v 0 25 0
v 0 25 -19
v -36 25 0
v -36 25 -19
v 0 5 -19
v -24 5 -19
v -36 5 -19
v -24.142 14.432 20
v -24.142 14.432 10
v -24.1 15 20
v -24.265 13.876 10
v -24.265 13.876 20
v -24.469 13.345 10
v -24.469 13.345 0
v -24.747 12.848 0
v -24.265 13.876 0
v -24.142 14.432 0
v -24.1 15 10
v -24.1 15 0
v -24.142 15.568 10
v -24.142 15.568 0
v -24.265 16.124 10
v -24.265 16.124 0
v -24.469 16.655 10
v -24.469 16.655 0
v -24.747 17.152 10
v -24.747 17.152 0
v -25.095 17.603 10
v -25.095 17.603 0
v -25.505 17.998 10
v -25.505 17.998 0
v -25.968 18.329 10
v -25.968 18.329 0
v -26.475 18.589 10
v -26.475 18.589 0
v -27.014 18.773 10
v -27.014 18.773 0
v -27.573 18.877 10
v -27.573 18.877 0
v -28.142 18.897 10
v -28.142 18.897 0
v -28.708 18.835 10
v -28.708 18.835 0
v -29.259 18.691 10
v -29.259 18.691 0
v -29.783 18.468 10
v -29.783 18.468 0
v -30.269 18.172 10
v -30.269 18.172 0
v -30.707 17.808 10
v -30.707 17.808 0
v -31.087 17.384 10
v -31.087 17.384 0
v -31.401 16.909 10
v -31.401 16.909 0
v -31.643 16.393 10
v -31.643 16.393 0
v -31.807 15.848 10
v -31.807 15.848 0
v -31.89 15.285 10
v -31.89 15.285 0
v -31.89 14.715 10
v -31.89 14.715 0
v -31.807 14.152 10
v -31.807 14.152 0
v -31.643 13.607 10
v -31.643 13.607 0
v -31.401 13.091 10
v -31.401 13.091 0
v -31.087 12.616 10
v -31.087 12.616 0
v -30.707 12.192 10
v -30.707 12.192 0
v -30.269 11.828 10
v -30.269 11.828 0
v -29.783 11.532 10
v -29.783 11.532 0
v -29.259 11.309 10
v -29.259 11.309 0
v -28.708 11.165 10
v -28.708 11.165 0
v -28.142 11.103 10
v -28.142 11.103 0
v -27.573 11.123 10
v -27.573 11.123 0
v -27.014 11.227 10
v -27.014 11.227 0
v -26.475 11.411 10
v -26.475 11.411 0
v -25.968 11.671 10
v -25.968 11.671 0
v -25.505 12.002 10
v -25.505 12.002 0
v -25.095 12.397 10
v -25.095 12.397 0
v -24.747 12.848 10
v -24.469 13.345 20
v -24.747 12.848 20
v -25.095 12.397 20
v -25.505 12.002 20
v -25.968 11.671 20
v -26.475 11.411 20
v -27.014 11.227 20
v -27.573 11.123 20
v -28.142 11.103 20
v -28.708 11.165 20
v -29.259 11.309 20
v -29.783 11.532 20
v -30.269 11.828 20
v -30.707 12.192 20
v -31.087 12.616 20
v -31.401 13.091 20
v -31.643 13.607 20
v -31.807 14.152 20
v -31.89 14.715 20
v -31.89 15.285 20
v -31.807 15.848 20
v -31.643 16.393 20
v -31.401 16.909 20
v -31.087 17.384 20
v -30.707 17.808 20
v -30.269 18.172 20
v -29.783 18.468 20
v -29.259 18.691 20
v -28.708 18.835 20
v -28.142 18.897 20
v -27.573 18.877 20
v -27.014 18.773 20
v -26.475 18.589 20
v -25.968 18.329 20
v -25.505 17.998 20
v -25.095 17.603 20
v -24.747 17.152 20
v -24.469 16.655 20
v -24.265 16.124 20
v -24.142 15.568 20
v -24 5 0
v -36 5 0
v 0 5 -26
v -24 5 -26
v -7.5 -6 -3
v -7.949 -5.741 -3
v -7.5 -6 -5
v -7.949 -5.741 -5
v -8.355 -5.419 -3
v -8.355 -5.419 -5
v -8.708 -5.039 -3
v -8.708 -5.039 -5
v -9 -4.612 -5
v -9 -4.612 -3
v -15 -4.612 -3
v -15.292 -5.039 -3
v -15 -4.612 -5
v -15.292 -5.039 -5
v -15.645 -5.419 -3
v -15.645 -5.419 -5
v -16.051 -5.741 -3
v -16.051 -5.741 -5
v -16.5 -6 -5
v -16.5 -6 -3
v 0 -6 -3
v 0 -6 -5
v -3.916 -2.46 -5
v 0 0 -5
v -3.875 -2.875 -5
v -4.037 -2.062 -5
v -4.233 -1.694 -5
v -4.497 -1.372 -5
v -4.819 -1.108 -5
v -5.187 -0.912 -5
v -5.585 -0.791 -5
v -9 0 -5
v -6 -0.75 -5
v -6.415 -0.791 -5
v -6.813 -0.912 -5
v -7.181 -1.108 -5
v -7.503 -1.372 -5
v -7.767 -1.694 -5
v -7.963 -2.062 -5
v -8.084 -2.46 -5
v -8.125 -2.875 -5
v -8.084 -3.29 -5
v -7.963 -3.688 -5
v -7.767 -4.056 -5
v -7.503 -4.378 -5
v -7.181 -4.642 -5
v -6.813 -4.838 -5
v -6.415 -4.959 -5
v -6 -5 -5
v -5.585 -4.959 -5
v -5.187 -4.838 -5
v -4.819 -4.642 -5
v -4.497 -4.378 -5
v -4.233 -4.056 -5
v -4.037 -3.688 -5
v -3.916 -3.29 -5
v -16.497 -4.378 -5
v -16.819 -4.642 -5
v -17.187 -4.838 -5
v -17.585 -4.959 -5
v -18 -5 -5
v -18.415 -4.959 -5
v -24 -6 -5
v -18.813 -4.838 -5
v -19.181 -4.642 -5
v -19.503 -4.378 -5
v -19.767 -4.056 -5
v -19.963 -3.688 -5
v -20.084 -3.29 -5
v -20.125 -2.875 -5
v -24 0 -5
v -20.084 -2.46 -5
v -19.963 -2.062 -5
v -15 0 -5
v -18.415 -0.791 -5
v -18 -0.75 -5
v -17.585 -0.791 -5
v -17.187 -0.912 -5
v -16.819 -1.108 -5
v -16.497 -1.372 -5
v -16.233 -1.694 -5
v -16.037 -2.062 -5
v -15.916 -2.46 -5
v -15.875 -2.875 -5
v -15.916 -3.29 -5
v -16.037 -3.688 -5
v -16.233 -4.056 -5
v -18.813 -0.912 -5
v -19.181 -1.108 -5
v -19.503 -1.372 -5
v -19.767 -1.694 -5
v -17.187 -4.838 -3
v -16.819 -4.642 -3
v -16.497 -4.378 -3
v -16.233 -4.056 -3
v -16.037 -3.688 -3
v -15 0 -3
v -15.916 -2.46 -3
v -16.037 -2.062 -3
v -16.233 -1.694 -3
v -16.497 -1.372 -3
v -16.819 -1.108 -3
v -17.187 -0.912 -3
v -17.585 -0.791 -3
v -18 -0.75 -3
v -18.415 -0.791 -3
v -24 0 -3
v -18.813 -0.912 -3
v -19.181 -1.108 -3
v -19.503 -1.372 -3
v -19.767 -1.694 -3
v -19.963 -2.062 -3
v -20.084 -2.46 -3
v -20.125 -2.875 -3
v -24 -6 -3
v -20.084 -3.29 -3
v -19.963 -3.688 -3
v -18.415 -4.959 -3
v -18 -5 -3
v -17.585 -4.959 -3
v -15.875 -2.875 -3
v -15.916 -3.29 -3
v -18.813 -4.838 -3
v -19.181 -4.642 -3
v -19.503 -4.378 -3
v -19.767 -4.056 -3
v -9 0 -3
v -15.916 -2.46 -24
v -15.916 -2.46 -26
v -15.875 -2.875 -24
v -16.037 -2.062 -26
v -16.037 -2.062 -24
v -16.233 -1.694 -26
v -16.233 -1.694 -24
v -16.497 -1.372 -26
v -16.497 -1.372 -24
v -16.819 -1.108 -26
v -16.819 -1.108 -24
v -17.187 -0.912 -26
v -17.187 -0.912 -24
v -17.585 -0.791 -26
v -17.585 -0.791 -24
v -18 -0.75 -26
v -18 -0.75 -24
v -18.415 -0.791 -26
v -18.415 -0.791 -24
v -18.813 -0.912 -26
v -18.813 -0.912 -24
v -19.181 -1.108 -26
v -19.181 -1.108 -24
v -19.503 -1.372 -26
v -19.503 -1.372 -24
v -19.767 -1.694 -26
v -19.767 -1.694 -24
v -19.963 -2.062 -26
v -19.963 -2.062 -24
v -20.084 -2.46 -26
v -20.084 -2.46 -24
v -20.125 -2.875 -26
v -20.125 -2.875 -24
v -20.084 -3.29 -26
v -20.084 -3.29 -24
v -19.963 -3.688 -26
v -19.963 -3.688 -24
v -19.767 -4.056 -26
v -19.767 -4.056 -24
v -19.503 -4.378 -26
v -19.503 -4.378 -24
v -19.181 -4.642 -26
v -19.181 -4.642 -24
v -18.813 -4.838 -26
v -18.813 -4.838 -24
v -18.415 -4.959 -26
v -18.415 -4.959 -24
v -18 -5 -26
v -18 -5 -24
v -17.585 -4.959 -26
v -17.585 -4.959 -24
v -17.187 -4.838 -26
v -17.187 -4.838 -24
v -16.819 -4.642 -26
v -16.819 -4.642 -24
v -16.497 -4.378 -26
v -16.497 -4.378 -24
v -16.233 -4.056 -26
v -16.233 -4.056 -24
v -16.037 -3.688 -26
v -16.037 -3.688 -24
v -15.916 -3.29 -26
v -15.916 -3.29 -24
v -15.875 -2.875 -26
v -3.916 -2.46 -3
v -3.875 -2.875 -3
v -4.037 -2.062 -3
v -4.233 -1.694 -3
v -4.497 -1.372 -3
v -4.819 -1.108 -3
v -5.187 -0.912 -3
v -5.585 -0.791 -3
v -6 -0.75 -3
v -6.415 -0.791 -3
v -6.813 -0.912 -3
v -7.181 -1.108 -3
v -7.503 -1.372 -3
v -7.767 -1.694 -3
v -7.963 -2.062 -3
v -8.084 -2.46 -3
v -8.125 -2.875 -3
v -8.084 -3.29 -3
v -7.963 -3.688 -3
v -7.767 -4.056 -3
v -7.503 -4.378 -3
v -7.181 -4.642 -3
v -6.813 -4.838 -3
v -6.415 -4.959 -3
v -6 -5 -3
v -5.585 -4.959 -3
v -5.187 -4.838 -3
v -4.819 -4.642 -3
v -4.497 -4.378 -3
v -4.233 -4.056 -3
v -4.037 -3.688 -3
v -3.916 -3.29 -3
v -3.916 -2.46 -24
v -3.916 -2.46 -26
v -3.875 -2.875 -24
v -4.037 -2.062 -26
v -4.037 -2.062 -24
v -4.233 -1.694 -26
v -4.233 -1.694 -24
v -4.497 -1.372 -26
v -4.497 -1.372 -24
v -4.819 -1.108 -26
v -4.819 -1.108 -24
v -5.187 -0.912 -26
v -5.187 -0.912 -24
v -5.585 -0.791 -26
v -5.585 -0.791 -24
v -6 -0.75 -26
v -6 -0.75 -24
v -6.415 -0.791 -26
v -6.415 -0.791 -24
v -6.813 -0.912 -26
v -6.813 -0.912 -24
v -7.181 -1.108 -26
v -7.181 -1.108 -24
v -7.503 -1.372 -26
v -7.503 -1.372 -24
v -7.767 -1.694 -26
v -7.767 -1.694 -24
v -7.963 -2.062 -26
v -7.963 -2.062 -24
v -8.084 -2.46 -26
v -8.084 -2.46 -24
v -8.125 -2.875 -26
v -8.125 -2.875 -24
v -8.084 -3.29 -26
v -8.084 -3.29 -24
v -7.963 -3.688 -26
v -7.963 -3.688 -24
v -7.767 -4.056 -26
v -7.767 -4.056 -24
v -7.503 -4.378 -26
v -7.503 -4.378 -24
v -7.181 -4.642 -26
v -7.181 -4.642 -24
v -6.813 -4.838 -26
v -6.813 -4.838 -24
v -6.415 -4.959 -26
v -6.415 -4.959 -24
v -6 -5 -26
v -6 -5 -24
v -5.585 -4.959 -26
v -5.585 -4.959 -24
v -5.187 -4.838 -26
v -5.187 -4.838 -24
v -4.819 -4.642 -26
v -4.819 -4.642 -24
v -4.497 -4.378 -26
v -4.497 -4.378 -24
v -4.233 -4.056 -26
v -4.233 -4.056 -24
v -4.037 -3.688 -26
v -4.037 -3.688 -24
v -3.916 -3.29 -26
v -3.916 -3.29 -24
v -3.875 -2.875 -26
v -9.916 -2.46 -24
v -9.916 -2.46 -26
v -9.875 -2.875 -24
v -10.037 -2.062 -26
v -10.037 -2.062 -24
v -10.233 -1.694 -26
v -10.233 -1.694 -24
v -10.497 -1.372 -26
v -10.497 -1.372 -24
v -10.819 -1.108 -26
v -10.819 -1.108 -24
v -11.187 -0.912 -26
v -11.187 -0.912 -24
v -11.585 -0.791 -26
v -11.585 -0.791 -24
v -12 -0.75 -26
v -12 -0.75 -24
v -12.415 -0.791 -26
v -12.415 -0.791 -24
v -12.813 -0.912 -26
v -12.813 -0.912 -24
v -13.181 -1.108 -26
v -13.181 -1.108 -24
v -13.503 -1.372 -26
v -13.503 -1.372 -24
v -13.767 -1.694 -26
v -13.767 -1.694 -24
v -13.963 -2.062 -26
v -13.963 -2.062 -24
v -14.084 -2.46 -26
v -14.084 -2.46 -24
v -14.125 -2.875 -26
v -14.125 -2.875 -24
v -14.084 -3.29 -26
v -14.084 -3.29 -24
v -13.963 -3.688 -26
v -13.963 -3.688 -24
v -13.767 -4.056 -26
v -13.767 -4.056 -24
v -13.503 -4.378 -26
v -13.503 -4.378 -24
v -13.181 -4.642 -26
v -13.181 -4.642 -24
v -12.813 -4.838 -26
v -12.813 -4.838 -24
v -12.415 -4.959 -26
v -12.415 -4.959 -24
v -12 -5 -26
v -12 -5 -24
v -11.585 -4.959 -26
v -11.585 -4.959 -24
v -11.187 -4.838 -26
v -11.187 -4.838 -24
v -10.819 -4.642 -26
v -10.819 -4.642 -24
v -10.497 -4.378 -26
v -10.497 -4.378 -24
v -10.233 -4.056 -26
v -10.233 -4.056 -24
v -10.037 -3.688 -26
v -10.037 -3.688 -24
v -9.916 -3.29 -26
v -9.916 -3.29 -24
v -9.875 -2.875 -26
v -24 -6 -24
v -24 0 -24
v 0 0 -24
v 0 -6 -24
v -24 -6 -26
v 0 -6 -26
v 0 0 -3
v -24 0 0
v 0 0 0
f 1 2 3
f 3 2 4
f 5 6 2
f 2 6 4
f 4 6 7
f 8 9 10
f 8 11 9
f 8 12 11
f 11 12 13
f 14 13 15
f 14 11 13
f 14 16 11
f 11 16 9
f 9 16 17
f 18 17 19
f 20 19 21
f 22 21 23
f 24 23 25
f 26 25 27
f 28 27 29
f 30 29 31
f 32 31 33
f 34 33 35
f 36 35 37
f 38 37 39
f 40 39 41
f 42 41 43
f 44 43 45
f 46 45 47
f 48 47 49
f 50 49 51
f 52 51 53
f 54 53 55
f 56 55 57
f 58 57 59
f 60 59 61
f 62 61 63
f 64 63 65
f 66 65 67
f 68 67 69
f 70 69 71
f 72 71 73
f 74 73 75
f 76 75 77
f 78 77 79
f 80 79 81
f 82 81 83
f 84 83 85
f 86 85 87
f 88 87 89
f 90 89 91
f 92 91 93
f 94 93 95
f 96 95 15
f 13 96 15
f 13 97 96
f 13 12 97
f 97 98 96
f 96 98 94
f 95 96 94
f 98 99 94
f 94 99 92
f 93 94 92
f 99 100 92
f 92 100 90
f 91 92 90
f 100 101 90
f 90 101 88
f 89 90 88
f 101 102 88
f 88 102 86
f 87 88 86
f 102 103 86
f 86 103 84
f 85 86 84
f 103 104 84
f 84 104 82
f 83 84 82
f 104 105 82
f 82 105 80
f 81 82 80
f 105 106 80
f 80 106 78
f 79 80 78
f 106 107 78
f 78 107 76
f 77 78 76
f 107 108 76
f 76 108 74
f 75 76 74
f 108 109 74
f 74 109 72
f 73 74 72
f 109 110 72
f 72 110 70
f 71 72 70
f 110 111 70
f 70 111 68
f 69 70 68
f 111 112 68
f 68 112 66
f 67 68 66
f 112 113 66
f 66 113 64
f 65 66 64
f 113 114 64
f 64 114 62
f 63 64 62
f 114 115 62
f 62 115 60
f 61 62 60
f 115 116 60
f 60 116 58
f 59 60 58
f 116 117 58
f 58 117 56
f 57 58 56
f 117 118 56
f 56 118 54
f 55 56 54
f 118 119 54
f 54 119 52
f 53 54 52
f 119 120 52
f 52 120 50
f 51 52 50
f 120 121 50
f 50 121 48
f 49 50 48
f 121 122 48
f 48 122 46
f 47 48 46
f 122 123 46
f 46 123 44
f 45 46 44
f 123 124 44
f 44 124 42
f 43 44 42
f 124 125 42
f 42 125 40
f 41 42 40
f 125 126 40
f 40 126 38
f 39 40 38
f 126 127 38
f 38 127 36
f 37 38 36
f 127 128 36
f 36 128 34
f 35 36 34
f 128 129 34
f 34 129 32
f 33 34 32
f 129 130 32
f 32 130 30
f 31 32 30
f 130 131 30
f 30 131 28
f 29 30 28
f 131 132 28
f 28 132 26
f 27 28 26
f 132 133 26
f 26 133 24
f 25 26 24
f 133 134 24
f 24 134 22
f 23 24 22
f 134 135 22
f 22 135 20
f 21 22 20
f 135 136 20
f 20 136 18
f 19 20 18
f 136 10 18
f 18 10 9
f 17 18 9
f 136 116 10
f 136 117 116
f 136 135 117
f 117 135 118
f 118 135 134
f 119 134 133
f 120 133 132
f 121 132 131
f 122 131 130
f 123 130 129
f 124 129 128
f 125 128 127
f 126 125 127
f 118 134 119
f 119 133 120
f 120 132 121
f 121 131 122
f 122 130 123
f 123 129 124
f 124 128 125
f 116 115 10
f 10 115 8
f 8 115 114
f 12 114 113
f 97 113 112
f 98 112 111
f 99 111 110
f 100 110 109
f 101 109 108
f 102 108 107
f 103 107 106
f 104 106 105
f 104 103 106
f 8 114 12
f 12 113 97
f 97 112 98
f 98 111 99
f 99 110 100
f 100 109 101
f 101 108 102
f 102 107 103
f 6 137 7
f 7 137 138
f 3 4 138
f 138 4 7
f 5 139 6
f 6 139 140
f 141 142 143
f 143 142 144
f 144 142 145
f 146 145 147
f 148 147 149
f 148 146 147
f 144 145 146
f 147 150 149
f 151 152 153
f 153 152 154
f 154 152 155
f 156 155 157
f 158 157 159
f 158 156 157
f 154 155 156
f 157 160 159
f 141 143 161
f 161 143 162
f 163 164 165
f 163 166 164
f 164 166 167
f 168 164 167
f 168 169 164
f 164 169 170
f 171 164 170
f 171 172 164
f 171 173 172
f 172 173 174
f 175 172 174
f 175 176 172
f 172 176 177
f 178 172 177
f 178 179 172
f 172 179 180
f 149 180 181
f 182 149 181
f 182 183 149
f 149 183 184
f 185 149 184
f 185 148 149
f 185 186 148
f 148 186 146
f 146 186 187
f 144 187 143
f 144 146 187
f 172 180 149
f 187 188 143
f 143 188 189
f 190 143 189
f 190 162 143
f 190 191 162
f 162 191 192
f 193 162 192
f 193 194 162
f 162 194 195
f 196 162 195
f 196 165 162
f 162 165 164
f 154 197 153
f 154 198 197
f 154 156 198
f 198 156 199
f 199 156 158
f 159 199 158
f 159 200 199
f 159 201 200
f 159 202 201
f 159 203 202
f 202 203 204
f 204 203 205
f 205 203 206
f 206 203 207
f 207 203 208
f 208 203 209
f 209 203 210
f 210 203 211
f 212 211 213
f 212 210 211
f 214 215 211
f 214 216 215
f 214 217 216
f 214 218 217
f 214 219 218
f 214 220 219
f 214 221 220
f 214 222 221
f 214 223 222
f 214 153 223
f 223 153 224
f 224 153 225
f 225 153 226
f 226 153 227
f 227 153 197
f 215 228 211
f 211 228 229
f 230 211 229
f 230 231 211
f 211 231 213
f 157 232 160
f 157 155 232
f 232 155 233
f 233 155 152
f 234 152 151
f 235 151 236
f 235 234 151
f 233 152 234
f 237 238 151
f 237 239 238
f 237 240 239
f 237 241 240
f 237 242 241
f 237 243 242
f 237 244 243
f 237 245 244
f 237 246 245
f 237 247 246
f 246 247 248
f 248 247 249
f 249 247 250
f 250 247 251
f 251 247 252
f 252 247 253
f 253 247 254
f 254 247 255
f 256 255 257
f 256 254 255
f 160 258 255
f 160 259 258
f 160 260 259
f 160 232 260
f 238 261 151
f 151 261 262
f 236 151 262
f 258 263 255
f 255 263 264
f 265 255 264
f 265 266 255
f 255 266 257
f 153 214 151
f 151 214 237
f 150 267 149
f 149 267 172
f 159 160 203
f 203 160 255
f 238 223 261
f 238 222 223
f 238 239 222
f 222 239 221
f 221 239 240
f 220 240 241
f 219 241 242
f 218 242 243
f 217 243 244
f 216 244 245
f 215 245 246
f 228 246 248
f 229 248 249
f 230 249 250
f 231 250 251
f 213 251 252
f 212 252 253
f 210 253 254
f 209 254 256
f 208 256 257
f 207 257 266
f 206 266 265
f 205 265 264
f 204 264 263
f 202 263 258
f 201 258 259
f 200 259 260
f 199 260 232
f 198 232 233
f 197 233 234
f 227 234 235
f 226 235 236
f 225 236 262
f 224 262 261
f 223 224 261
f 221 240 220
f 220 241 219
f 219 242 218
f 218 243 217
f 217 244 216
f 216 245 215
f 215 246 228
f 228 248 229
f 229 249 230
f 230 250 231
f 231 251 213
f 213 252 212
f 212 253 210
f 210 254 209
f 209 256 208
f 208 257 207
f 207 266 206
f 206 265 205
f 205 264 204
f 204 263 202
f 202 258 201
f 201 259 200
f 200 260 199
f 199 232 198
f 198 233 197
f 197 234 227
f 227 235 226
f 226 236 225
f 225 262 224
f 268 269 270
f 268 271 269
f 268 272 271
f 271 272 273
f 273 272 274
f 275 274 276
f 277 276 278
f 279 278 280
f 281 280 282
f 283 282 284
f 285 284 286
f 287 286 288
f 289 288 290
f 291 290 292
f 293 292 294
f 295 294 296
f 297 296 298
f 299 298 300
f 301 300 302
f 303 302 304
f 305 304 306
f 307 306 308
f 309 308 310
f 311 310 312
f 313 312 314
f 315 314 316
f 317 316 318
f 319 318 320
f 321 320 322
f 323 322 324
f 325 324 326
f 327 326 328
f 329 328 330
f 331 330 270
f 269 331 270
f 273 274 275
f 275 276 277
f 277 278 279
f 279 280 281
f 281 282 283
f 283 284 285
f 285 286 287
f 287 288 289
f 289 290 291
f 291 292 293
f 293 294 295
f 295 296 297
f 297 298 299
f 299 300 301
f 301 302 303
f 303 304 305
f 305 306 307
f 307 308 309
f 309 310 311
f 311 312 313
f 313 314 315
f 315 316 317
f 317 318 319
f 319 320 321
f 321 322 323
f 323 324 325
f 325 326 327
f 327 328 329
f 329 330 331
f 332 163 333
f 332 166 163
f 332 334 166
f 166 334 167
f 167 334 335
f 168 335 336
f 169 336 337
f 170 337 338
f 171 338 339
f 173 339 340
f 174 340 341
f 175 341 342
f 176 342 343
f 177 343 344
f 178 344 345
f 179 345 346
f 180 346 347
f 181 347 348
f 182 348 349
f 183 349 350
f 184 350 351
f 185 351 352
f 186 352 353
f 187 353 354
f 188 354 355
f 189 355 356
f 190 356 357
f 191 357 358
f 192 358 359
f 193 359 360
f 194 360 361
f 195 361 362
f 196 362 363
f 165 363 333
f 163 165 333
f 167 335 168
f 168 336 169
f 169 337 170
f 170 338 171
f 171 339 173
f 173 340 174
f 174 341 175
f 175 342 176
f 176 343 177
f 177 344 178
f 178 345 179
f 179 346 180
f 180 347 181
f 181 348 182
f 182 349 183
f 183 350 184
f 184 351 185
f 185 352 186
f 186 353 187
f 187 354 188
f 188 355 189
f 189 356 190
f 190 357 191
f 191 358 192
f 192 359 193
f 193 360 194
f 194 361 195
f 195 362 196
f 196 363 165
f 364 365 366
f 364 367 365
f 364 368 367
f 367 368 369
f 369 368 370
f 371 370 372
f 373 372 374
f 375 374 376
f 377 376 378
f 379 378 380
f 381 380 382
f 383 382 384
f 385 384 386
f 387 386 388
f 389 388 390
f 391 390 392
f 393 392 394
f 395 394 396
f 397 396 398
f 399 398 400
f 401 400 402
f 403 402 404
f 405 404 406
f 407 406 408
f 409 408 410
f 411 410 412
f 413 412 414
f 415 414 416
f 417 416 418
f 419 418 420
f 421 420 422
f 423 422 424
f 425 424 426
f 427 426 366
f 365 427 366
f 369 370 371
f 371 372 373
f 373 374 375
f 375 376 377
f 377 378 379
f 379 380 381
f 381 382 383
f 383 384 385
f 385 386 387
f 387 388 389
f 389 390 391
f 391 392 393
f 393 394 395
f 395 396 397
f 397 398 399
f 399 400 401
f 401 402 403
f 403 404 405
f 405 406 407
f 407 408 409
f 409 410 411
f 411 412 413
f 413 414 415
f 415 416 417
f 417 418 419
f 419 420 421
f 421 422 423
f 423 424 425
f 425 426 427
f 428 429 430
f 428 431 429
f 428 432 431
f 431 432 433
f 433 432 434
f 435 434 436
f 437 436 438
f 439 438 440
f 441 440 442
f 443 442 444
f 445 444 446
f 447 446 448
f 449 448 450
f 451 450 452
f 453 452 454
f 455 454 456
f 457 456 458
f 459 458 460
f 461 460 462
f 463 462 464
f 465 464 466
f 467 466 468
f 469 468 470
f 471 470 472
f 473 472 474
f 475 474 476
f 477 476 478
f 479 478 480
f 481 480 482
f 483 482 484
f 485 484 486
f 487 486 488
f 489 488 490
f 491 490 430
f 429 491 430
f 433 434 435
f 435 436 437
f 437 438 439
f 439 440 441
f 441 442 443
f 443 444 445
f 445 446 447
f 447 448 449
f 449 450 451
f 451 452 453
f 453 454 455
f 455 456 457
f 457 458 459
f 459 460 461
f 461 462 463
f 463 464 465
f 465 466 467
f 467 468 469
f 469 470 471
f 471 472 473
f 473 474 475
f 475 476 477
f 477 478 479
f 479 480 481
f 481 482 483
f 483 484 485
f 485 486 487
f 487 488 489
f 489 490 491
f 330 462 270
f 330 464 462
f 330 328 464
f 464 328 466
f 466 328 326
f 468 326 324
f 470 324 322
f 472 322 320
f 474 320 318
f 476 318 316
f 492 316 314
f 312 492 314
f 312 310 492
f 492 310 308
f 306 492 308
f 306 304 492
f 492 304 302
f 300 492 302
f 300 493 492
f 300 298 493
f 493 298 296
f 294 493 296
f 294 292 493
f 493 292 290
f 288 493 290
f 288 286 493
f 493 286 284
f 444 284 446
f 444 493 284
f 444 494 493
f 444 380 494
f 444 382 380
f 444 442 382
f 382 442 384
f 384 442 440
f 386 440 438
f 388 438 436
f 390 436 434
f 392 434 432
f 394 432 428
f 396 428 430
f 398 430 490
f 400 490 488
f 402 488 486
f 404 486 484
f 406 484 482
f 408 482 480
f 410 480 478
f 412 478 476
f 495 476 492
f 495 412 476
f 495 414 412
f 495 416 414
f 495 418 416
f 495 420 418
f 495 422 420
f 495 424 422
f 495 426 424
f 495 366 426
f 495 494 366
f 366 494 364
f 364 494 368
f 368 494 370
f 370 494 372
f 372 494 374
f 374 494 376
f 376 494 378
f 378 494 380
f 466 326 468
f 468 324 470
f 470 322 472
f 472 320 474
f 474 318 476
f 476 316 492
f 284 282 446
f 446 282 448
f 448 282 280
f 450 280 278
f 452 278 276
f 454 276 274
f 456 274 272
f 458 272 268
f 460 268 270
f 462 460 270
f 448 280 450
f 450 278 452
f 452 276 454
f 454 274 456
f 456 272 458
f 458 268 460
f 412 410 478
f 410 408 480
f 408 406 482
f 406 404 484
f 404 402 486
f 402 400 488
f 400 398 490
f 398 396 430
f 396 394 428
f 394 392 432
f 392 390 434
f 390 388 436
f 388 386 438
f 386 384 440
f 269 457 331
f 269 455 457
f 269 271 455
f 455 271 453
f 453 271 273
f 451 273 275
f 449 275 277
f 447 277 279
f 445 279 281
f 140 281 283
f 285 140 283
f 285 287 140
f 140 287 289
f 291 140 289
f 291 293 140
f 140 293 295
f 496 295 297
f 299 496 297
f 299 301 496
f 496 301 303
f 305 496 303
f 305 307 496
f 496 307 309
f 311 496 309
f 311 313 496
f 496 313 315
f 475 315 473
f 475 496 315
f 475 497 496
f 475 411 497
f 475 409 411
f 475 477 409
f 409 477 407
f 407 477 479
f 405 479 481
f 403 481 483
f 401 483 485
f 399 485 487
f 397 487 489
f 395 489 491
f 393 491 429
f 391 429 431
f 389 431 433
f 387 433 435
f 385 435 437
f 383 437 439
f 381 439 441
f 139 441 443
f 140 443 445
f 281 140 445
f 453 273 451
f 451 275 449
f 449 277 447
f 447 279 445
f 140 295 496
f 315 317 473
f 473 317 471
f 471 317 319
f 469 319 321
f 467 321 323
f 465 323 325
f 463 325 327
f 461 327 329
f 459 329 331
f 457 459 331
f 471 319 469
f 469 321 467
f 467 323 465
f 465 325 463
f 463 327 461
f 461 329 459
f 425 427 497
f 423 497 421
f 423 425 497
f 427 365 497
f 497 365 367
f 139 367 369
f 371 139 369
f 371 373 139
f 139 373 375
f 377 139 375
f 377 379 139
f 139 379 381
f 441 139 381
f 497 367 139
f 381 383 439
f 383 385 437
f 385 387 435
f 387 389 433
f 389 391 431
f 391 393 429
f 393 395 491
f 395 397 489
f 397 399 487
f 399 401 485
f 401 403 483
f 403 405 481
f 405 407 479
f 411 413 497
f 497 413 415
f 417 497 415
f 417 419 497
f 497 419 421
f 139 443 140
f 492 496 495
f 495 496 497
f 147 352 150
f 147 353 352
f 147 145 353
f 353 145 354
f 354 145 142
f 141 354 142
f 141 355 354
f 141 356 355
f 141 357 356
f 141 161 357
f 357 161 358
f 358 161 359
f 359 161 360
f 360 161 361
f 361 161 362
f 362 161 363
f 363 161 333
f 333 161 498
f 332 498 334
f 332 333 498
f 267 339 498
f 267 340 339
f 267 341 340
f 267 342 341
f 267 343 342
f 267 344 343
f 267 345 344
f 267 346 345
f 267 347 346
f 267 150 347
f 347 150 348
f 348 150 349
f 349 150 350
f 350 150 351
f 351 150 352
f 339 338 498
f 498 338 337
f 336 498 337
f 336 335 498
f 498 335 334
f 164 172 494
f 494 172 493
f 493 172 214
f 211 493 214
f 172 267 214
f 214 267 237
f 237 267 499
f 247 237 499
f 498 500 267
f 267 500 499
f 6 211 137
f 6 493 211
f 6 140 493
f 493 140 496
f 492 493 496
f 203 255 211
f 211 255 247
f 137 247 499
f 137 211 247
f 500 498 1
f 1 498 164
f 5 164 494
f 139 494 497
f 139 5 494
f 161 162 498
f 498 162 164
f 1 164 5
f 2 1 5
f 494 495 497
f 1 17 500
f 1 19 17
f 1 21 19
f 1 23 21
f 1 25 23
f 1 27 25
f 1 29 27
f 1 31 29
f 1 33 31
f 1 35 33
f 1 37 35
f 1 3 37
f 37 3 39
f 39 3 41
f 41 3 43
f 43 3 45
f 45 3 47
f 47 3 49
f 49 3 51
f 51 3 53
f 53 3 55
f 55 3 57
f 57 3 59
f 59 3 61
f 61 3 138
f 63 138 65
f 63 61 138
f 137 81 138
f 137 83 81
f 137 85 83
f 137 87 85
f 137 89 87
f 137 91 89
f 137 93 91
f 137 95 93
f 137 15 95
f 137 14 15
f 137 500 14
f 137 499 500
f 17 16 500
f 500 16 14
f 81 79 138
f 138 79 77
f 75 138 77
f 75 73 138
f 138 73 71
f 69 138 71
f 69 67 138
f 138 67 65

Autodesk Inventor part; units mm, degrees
ref_plane "YZ Plane" through (0, 0, 0) normal (1, 0, 0) x (0, 1, 0)
ref_plane "XZ Plane" through (0, 0, 0) normal (0, 1, 0) x (-1, 0, 0)
ref_plane "XY Plane" through (0, 0, 0) normal (0, 0, 1) x (1, 0, 0)
sketch "Sketch1" plane through (0, 0, 0) normal (0, 1, 0) x (-1, 0, 0)
  line L0 (0, 0) -> (24, 0)
  line L1 (24, 0) -> (24, -24)
  line L2 (24, -24) -> (0, -24)
  line L3 (0, -24) -> (0, 0)
  dimension "d0" = 24
  dimension "d1" = 24
extrude "Extrusion1" add sketch "Sketch1" along normal blind 5
sketch "Sketch2" plane through (0, 0, 0) normal (0, -1, 0) x (1, 0, 0)
  line L0 (0, 0) -> (0, -3)
  line L1 (0, 0) -> (0, -24) projected
  line L2 (-24, -24) -> (-24, 0) projected
  line L3 (0, -3) -> (-24, -3)
  line L4 (-24, -3) -> (-24, -5)
  line L5 (-24, -5) -> (0, -5)
  line L6 (0, -5) -> (0, -3)
  dimension "d4" = 3
  dimension "d5" = 2
extrude "Extrusion2" add sketch "Sketch2" along normal blind 6
sketch "Sketch3" plane through (-24, 0, -3) normal (0, 0, 1) x (1, 0, 0)
  line L0 (24, -6) -> (0, -6)
  line L1 (0, -6) -> (24, -6) projected
  line L2 (12, -6) -> (12, -5)
  line L3 (12, -5) -> (12, -2.875)
  circle A0 centre (12, -2.875) radius 2.125
  point P0 (24, 0)
  dimension "d8" = 1
  dimension "d11" = 2.125
  dimension "d12" = 4.25
sketch "Sketch4" plane through (0, 5, 0) normal (0, 1, 0) x (1, 0, 0)
  line L0 (-24, 24) -> (0, 24)
  line L1 (0, 24) -> (0, 26)
  line L2 (0, 26) -> (-24, 26)
  line L3 (-24, 26) -> (-24, 24)
  point P0 (0, 0)
  dimension "d13" = 2
extrude "Extrusion3" add sketch "Sketch4" against normal blind 11
sketch "Sketch5" plane through (0, 5, 0) normal (0, 1, 0) x (1, 0, 0)
  line L0 (-24, 5) -> (-24, 24) projected
  line L1 (0, 3) -> (-24, 3)
  line L2 (-24, 3) -> (-24, 9)
  line L3 (-24, 9) -> (0, 9)
  line L4 (0, 9) -> (0, 3)
  point P0 (0, 0)
  dimension "d16" = 6
extrude "Extrusion4" add sketch "Sketch5" along normal blind 10
extrude "Extrusion6" cut sketch "Sketch3" against normal through all
pattern_linear "Rectangular Pattern1" count 3 spacing 6 along (-1, 0, 0) of "Extrusion6" first direction both ways yes
sketch "Sketch7" plane through (0, 5, -26) normal (0, 0, -1) x (-1, 0, 0)
  circle A0 centre (18, -7.875) radius 2.125 projected
  line L0 (15.875, -7.875) -> (14.125, -7.875)
  circle A1 centre (12, -7.875) radius 2.125 projected
  circle A2 centre (6, -7.875) radius 2.125 projected
  line L1 (8.125, -7.875) -> (9.875, -7.875)
  line L2 (15, -7.875) -> (15, -11)
  line L3 (24, -11) -> (0, -11) projected
  line L4 (9, -7.875) -> (9, -5)
  line L5 (0, -5) -> (24, -5) projected
  line L6 (15, -11) -> (9, -11)
  line L7 (9, -11) -> (9, -5)
  line L8 (9, -5) -> (15, -5)
  line L9 (15, -5) -> (15, -11)
sketch "Sketch8" plane through (-24, 0, -3) normal (0, 0, 1) x (1, 0, 0)
  circle A0 centre (18, -2.875) radius 2.125 projected
  line L0 (15.875, -2.875) -> (14.125, -2.875)
  circle A1 centre (12, -2.875) radius 2.125 projected
  line L1 (9.875, -2.875) -> (8.125, -2.875)
  circle A2 centre (6, -2.875) radius 2.125 projected
  line L2 (0, -6) -> (24, -6) projected
  line L3 (9, -6) -> (9, 0)
  line L4 (24, 0) -> (0, 0) projected
  line L5 (15, -6) -> (15, 0)
  line L6 (15, -6) -> (9, -6)
  line L7 (9, -6) -> (9, 0)
  line L8 (9, 0) -> (15, 0)
  line L9 (15, 0) -> (15, -6)
extrude "Extrusion7" cut sketch "Sketch8" against normal blind 2 contours L5 L2 L3 L1 A1 L0 | L0 A1 L1 L3 L4 L5
sketch "Sketch9" plane through (0, -6, -3) normal (0, 0, 1) x (1, 0, 0)
  line L0 (-9, 6) -> (-9, 0) projected
  line L1 (-9, 0) -> (0, 0) projected
  circle A0 centre (-6, 3.125) radius 2.125 projected
  line L2 (-15, 0) -> (-15, 6) projected
  line L3 (-24, 0) -> (0, 0) projected
  circle A1 centre (-18, 3.125) radius 2.125 projected
  line L4 (-9, 0) -> (-7.5, 0)
  line L5 (-15, 0) -> (-16.5, 0)
  line L6 (-9, 0) -> (-9, 1.3884)
  arc A2 (-9, 1.3884) -> (-7.5, 0) centre (-6, 3.125) ccw
  line L7 (-15, 0) -> (-15, 1.3884)
  arc A3 (-16.5, 0) -> (-15, 1.3884) centre (-18, 3.125) ccw
  point P0 (0, 6)
  dimension "d33" = 1.5
  dimension "d34" = 1.5
extrude "Extrusion8" cut sketch "Sketch9" against normal blind 2 contours A2 L1 L0 | L3 A3 L2
sketch "Sketch10" plane through (0, 0, 0) normal (1, 0, 0) x (0, 0, -1)
  line L0 (9, 5) -> (19, 5)
  line L1 (19, 5) -> (19, 15)
  line L2 (19, 15) -> (9, 15)
  line L3 (9, 15) -> (9, 5)
  point P0 (0, 0)
  dimension "d37" = 10
extrude "Extrusion9" add sketch "Sketch10" against normal blind 24
sketch "Sketch11" plane through (0, 15, 0) normal (0, 1, 0) x (1, 0, 0)
  line L0 (0, 5) -> (0, 19)
  line L1 (0, 19) -> (-24, 19)
  line L2 (-24, 19) -> (-24, 3)
  line L3 (-24, 3) -> (0, 3)
  line L4 (0, 3) -> (0, 19)
  point P0 (0, 0)
  point P1 (-24, 5)
extrude "Extrusion10" add sketch "Sketch11" along normal blind 10
sketch "Sketch13" plane through (0, 0, 0) normal (1, 0, 0) x (0, 0, -1)
  line L0 (3, 25) -> (19, 25)
  line L1 (19, 25) -> (19, 5)
  line L2 (19, 5) -> (3, 5)
  line L3 (3, 5) -> (3, 25)
  point P0 (0, 0)
extrude "Extrusion11" add sketch "Sketch13" along normal blind 12
sketch "Sketch14" plane through (-24, 5, -3) normal (0, 0, 1) x (1, 0, 0)
  line L0 (24, 0) -> (24, 20)
  line L1 (0, 20) -> (36, 20) projected
  line L2 (24, 10) -> (32, 10)
  circle A0 centre (28, 10) radius 3.75
  point P0 (24, -5)
  dimension "d44" = 8
  dimension "d45" = 7.5
extrude "Extrusion12" add sketch "Sketch14" along normal blind 20
sketch "Sketch15" plane through (-24, 0, 0) normal (-1, 0, 0) x (0, 0, 1)
  line L0 (-3, 25) -> (0, 25)
  line L1 (0, 25) -> (0, 5)
  line L2 (0, 5) -> (-3, 5)
  line L3 (-3, 5) -> (-3, 25)
  point P0 (0, 0)
extrude "Extrusion13" add sketch "Sketch15" against normal blind 36
sketch "Sketch16" plane through (-24, 0, -3) normal (-1, 0, 0) x (0, 0, 1)
  line L0 (3, 25) -> (-16, 25)
  line L1 (-16, 25) -> (-16, 5)
  line L2 (-16, 5) -> (3, 5)
  line L3 (3, 5) -> (3, 25)
  point P0 (3, 0)
extrude "Extrusion14" add sketch "Sketch16" along normal blind 12
sketch "Sketch17" plane through (-24, 0, 0) normal (0, 0, 1) x (1, 0, 0)
  line L0 (-12, 25) -> (-12, 5) projected
  line L1 (-12, 15) -> (-4, 15)
  circle A0 centre (-4, 15) radius 3.9
  point P0 (24, 0)
  dimension "d52" = 8
  dimension "d53" = 7.8
extrude "Extrusion15" add sketch "Sketch17" along normal blind 20
sketch "Sketch18" plane through (-24, 0, 0) normal (0, 0, 1) x (1, 0, 0)
  line L0 (24, 5) -> (36, 5)
  line L1 (36, 5) -> (36, 25)
  line L2 (36, 25) -> (24, 25)
  line L3 (24, 25) -> (24, 5)
  point P0 (24, 0)
extrude "Extrusion16" cut sketch "Sketch18" along normal through all both and the other way through all
properties part number "RearBearingMount"
